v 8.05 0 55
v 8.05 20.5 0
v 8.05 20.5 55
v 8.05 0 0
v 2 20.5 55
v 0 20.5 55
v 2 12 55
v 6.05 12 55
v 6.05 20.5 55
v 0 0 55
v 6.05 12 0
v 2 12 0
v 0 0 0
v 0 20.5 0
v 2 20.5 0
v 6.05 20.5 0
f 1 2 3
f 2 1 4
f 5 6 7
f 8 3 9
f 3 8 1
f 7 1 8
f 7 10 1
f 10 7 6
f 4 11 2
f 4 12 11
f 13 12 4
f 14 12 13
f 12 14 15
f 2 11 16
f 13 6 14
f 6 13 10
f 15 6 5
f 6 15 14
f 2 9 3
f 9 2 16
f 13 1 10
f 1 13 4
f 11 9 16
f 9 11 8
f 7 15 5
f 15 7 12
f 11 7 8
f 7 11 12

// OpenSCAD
thickness = 2;  // thickness of wall
shelf_thickness = 4.05;  // thickness of the shelf glass
under_shelf = 2; // space between bottom of the shelf and refrigerator shelf hook
shelf_extension = 12; // distance between shelf and refrigerator wall
holder_lenght = 55;  // lenght of the shelf holder
holding_shelf_width = 8.5; // lenght or distance of shelf inside in holder



difference () {
	cube([thickness + shelf_thickness +under_shelf,holding_shelf_width+shelf_extension,holder_lenght]);
	translate([thickness,shelf_extension,0]) cube([shelf_thickness,holding_shelf_width,holder_lenght]);

}
